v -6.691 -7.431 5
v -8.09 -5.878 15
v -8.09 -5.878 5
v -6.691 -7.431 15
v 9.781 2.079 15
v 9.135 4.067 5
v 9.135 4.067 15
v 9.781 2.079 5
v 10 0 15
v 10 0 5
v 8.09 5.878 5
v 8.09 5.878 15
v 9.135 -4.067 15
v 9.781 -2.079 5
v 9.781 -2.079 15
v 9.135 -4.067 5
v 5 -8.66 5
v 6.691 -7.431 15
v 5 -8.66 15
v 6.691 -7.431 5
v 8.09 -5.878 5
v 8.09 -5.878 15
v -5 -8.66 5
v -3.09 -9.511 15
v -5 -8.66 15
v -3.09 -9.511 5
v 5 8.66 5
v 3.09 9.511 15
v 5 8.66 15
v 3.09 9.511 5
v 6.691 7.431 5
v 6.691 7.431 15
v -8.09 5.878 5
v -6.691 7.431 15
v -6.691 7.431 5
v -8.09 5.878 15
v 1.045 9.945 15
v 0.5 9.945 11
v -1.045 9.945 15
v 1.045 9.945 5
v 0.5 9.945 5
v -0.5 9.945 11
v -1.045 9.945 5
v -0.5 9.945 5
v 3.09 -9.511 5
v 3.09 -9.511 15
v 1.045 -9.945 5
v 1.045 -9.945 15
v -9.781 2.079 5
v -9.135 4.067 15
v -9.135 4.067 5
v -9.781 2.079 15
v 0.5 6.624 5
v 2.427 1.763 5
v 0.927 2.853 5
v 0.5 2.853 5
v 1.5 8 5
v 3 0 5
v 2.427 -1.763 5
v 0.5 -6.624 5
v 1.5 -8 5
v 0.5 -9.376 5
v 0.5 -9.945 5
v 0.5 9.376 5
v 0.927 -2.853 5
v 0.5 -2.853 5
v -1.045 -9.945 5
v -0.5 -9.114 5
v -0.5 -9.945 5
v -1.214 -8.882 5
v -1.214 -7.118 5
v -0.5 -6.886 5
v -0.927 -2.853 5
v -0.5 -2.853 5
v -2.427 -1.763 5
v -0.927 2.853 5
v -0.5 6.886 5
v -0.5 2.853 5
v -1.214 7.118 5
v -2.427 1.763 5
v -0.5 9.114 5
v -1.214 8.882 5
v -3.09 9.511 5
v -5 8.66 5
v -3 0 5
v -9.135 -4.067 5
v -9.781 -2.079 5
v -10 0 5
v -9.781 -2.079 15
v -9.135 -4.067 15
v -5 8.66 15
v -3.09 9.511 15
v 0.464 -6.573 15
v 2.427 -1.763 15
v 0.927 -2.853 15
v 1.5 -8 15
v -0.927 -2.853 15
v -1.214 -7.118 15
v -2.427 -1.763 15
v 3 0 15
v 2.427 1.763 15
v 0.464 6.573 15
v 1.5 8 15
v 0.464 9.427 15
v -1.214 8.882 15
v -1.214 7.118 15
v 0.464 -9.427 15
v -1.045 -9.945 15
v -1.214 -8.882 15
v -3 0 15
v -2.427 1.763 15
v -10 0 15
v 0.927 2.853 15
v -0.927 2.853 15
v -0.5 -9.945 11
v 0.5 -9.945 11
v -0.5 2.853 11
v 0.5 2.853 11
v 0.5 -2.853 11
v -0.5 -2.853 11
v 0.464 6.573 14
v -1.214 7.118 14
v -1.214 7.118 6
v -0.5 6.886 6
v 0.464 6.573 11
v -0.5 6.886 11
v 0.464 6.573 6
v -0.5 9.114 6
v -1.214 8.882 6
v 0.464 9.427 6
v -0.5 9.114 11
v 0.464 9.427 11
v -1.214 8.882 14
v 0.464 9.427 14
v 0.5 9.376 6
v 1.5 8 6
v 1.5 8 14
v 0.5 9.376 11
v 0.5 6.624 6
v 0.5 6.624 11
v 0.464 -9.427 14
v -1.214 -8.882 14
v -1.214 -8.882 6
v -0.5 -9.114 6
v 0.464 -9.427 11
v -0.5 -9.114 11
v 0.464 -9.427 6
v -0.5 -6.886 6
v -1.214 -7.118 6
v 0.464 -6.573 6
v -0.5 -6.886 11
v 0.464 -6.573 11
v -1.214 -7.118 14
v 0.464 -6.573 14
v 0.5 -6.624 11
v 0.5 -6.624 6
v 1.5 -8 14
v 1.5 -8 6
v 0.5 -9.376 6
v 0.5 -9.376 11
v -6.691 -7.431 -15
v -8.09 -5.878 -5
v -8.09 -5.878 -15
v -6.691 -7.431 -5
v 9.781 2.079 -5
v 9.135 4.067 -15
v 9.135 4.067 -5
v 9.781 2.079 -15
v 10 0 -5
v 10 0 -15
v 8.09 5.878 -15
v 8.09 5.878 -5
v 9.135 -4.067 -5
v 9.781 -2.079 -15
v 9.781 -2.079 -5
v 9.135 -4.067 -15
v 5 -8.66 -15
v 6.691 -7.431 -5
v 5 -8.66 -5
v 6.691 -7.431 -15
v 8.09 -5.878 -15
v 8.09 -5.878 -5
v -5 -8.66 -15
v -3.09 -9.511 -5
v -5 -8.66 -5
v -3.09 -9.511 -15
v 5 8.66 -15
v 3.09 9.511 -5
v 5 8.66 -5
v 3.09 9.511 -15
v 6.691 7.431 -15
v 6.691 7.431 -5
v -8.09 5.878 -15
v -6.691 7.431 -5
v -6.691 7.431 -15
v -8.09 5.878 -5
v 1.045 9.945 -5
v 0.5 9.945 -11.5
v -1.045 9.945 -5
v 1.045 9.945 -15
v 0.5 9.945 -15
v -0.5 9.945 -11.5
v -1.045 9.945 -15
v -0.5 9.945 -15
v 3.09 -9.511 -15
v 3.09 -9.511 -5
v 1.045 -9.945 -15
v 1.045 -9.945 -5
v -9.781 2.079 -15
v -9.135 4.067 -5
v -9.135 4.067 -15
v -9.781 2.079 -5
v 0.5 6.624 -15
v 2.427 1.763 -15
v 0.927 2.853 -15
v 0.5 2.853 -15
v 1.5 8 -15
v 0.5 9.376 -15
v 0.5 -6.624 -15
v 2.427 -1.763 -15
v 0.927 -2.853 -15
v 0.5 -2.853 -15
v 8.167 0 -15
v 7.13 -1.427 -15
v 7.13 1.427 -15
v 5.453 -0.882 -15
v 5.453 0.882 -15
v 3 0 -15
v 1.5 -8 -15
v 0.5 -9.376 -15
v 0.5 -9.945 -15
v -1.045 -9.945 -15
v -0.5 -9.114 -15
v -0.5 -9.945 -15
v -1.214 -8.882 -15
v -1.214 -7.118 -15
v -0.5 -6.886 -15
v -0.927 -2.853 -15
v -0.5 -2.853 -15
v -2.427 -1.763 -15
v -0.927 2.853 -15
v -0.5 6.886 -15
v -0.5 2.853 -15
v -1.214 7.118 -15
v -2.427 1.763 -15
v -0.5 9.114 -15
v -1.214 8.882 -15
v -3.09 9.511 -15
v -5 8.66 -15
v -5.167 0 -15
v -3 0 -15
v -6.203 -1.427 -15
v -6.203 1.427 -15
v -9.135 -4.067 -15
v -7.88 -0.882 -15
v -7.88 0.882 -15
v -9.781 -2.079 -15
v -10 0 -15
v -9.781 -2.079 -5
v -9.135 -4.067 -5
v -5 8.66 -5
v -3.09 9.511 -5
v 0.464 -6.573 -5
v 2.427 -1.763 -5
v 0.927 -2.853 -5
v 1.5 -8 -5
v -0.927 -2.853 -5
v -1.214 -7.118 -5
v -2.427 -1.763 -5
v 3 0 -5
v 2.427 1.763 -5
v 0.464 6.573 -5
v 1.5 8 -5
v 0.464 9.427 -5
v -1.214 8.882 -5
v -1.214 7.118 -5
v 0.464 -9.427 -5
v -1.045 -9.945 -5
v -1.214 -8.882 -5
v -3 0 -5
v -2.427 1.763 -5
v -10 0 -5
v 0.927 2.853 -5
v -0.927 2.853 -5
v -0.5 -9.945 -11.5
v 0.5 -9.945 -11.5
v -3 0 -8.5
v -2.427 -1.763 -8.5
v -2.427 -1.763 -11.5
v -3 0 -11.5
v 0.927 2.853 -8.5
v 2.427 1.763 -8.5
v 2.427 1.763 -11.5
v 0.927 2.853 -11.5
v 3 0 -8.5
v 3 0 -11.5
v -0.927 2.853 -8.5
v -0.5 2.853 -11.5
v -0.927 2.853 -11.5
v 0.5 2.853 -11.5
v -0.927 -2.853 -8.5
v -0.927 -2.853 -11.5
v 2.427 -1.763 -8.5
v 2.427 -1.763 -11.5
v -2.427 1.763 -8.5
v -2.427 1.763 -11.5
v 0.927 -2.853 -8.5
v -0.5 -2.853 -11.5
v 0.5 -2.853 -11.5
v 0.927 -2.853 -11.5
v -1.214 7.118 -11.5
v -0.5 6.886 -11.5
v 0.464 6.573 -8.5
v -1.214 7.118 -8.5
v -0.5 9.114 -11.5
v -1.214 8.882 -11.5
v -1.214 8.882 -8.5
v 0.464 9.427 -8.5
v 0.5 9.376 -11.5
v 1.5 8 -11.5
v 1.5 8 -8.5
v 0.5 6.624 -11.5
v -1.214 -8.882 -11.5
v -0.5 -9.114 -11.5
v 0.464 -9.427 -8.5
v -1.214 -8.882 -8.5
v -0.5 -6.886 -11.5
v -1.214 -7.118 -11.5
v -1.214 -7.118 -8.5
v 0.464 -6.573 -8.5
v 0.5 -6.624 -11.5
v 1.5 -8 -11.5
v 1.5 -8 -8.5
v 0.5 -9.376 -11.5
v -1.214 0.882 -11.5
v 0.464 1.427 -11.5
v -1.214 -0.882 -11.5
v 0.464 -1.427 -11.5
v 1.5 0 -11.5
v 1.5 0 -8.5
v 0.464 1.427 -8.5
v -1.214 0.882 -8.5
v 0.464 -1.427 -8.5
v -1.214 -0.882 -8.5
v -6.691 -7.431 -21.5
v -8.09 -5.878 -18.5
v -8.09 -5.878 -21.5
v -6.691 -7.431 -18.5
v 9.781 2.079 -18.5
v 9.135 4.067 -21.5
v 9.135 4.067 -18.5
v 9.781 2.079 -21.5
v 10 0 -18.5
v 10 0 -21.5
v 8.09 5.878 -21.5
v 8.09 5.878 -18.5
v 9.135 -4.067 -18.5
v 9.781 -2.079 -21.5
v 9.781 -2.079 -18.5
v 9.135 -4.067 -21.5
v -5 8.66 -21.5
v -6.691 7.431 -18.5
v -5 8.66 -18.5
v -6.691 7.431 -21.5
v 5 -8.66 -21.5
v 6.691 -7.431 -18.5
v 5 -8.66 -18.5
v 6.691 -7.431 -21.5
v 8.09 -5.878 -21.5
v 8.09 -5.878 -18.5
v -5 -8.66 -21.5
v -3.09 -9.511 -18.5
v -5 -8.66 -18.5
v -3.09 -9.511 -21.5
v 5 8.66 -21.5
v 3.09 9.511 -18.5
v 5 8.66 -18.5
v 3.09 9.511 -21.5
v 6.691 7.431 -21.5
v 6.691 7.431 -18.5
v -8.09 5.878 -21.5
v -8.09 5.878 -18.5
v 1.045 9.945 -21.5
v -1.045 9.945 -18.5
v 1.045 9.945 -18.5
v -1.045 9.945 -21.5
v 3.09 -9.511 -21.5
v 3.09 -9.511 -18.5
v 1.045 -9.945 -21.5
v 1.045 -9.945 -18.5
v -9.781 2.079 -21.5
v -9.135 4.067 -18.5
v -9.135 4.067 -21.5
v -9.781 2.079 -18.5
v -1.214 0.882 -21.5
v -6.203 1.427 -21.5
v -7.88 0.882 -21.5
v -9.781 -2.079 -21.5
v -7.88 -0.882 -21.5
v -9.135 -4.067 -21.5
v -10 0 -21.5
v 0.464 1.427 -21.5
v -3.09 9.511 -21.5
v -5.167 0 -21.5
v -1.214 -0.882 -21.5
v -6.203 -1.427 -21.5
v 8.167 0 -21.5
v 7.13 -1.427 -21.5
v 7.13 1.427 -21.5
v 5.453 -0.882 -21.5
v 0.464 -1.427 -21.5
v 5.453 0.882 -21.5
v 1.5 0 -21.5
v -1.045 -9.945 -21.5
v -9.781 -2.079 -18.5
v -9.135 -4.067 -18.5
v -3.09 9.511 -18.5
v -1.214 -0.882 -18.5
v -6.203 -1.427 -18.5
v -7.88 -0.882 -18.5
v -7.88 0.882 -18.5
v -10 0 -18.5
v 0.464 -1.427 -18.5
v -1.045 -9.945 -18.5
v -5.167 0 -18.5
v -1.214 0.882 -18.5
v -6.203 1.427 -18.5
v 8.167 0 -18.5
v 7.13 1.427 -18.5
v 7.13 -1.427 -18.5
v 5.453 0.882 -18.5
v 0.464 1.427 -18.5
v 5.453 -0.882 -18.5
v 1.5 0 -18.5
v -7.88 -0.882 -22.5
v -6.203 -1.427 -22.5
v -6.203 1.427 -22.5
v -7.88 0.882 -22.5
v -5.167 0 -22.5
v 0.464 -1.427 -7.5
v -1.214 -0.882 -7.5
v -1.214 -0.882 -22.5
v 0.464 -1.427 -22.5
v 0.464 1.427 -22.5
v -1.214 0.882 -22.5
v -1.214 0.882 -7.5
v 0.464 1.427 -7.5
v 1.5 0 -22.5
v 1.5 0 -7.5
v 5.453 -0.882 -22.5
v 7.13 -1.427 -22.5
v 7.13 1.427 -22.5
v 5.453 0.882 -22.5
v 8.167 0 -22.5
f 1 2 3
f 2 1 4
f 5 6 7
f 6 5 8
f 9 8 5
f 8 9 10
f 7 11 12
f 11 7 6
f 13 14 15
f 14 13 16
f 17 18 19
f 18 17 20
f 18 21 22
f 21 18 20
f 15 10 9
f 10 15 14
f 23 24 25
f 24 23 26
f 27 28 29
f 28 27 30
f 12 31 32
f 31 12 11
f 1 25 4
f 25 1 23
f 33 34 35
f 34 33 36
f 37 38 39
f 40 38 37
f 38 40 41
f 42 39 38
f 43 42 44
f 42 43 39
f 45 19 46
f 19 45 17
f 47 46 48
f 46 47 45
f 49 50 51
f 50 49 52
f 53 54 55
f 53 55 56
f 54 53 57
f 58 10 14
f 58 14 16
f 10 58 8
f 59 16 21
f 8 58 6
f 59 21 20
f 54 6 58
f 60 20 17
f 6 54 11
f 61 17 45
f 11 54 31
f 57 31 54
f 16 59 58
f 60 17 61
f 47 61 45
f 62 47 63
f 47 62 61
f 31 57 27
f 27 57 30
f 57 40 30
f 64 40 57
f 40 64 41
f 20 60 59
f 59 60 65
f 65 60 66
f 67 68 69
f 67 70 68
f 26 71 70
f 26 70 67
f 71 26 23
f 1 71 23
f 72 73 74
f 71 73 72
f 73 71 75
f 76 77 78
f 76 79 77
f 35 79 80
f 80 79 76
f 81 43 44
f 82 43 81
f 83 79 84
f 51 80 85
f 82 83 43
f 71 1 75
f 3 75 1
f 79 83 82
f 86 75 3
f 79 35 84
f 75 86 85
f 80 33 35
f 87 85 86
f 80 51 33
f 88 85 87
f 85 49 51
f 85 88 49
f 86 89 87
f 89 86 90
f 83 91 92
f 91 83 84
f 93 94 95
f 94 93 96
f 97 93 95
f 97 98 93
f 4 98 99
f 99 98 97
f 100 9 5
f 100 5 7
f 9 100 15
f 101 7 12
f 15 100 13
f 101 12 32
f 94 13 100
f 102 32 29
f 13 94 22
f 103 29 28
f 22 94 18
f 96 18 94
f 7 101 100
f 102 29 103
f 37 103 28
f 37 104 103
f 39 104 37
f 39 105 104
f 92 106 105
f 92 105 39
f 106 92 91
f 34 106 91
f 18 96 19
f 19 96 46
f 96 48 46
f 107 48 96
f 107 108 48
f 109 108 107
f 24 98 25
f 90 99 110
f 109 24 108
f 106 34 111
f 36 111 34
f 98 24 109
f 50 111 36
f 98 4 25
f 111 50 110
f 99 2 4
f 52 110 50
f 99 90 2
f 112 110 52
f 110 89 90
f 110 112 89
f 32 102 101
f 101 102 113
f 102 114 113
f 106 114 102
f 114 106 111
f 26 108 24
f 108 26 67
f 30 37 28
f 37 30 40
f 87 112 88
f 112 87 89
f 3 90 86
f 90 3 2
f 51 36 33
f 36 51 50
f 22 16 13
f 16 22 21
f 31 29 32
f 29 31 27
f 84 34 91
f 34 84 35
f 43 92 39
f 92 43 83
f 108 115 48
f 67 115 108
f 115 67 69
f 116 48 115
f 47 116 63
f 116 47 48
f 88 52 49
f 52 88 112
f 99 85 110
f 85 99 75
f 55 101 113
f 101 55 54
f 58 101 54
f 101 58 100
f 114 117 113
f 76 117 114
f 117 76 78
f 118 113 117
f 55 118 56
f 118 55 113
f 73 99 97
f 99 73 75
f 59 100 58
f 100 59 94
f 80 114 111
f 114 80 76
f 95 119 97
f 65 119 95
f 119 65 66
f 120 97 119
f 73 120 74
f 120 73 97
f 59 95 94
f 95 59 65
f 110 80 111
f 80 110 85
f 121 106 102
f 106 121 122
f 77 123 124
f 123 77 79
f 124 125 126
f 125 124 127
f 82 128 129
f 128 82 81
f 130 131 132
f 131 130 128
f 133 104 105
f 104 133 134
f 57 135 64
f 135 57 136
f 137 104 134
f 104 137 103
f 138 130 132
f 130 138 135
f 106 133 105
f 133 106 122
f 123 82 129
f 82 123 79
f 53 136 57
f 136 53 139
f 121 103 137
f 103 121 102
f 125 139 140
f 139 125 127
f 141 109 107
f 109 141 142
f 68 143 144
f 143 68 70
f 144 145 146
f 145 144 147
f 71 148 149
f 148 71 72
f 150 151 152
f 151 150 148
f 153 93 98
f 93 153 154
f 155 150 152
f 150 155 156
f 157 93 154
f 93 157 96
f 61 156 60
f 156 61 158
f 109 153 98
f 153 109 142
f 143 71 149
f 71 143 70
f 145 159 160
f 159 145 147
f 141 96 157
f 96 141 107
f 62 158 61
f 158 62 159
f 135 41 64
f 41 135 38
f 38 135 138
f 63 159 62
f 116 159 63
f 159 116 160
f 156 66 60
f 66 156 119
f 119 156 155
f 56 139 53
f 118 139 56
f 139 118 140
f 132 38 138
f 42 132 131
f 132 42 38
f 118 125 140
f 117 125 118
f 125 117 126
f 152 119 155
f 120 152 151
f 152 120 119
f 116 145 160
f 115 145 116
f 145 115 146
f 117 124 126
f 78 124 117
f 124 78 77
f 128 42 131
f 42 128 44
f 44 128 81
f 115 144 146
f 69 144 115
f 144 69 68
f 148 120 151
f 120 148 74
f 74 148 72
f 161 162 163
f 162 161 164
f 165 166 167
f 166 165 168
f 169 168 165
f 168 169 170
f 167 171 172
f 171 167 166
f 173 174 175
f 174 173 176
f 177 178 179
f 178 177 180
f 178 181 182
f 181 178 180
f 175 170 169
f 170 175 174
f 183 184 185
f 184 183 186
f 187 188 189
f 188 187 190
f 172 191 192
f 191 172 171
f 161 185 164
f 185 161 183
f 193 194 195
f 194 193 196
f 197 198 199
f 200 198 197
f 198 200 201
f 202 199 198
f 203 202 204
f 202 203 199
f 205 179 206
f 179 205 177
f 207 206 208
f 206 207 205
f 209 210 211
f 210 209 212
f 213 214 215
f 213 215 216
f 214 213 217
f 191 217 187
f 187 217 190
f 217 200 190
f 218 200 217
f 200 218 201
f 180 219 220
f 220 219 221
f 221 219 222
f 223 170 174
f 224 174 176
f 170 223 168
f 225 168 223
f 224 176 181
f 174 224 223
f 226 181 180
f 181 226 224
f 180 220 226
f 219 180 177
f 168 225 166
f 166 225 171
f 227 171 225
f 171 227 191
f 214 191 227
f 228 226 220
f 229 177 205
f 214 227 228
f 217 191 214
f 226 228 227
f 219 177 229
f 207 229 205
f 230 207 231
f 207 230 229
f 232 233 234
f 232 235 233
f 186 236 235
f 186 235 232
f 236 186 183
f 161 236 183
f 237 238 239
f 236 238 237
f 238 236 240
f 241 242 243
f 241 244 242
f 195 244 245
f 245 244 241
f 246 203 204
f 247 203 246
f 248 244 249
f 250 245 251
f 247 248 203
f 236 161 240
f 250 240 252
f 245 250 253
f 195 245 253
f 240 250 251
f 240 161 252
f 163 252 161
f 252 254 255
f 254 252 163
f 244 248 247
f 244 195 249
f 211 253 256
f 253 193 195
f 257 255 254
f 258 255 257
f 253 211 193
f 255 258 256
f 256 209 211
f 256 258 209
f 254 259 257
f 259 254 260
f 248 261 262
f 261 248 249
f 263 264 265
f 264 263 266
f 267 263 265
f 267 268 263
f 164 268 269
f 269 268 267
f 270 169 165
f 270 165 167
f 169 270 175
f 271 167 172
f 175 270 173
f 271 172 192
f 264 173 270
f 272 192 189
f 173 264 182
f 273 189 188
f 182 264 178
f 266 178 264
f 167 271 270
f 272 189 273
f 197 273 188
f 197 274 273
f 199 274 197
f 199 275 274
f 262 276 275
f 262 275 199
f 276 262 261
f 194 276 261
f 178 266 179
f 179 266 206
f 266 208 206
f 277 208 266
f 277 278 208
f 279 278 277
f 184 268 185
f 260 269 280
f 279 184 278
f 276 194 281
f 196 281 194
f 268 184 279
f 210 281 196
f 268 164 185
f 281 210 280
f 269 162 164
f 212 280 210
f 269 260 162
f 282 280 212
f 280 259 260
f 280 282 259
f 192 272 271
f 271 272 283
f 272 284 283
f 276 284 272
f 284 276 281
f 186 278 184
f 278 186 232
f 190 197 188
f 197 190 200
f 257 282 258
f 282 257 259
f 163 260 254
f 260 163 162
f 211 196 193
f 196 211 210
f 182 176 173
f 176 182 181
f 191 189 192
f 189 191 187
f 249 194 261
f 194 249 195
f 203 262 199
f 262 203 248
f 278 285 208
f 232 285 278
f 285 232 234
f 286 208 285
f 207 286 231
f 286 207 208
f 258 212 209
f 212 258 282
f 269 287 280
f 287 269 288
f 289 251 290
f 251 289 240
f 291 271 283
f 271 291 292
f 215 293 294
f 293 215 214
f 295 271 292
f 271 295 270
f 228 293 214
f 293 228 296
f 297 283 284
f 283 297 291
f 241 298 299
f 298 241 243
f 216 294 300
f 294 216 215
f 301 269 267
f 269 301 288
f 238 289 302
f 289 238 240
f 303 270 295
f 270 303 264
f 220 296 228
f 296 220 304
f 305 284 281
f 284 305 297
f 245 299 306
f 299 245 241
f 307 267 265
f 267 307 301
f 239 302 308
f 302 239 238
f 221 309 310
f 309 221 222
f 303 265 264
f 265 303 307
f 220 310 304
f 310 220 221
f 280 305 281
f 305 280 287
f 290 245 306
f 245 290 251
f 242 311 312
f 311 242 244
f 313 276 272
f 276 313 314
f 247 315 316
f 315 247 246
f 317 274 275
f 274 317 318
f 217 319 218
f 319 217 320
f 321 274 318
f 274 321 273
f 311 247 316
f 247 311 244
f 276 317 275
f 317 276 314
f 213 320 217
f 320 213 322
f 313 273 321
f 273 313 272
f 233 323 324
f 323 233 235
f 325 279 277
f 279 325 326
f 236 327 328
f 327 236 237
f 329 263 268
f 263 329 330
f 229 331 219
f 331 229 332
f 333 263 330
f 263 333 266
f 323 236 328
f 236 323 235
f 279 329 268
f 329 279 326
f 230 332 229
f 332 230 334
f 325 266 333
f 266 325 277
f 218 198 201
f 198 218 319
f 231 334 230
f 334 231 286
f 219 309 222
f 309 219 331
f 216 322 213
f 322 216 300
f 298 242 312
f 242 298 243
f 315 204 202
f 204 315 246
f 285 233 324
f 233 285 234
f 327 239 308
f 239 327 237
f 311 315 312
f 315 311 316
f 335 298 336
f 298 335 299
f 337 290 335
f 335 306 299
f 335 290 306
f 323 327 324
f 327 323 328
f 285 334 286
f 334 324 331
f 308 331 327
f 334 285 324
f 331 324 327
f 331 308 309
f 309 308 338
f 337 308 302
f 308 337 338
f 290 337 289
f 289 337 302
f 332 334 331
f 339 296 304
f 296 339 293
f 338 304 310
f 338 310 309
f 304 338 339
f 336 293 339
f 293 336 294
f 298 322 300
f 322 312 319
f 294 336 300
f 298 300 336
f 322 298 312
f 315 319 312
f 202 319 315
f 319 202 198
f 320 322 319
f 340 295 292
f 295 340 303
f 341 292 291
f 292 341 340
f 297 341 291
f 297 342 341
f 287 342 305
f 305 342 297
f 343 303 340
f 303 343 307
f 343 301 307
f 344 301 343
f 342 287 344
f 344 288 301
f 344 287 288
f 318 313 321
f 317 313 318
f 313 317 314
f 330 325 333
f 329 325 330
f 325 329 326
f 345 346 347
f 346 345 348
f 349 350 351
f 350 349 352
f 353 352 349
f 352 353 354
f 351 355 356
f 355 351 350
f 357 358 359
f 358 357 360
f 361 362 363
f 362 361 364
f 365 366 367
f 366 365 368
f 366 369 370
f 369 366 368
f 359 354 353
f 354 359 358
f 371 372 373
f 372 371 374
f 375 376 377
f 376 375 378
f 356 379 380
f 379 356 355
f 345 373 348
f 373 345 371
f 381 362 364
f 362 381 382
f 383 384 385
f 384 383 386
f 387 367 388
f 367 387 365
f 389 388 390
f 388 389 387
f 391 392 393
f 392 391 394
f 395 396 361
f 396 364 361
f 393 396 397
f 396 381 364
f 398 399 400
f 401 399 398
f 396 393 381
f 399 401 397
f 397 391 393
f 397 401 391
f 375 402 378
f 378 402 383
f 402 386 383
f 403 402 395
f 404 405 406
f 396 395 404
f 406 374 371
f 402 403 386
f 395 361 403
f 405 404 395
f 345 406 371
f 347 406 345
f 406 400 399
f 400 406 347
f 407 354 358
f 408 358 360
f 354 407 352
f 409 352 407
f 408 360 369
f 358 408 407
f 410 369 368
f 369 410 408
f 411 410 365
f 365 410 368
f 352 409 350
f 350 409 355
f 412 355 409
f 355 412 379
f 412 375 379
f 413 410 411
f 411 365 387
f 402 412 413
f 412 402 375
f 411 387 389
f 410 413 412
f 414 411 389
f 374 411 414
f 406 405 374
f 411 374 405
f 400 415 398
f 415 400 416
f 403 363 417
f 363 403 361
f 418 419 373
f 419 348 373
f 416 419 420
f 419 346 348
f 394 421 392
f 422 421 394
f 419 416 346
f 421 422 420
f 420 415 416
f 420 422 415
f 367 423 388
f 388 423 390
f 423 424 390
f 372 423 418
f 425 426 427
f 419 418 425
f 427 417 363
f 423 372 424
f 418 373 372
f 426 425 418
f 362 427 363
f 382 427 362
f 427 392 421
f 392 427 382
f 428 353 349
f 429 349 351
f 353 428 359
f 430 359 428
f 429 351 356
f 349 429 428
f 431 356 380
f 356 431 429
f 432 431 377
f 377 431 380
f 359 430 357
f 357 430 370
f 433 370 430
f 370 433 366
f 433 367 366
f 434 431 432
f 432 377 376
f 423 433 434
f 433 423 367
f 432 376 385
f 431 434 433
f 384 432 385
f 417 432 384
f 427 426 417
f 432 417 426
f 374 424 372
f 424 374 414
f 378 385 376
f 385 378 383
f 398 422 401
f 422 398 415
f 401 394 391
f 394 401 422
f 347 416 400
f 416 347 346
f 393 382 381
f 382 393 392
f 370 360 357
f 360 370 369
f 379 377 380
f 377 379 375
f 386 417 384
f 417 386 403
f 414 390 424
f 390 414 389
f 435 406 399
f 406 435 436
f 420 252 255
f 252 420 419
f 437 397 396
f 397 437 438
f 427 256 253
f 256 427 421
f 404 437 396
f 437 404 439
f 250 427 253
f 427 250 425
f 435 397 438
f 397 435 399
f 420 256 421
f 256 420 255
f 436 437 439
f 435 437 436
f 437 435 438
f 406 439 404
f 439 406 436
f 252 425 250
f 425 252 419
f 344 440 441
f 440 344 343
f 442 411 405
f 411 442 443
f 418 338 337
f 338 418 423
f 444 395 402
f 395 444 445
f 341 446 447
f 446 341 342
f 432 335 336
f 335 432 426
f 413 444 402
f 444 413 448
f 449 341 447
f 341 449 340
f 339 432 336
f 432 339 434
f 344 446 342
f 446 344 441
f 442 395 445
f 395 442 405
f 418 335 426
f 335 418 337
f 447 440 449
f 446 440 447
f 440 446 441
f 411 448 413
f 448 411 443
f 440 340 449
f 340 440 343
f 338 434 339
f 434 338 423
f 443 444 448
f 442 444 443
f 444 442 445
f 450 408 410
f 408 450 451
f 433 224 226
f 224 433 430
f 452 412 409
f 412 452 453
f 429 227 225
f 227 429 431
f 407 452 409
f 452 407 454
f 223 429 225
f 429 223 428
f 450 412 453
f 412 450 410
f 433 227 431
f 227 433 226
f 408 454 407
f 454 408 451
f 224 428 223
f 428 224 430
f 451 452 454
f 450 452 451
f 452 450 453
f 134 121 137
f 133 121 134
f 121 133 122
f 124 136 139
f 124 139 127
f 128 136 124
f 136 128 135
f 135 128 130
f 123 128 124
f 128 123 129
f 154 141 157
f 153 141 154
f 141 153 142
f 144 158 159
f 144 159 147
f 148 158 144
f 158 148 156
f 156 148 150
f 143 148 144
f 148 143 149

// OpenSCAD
// Parameters
clamp_diameter = 20;
clamp_height = 10;
shaft_hole_diameter = 6;
screw_hole_diameter = 3;
slit_width = 1;
flexible_element_thickness = 3;
pin_diameter = 3;
pin_length = 15;
screw_length = 8;

// Left Clamp
module left_clamp() {
    difference() {
        cylinder(d=clamp_diameter, h=clamp_height, center=true);
        cylinder(d=shaft_hole_diameter, h=clamp_height+2, center=true);
        translate([0, clamp_diameter/2 - 2, 0])
            cylinder(d=screw_hole_diameter, h=clamp_height+2, center=true);
        translate([0, -clamp_diameter/2 + 2, 0])
            cylinder(d=screw_hole_diameter, h=clamp_height+2, center=true);
        translate([0, 0, -clamp_height/2])
            cube([slit_width, clamp_diameter, clamp_height+2], center=true);
    }
}

// Right Clamp
module right_clamp() {
    left_clamp();
}

// Flexible Element
module flexible_element() {
    difference() {
        union() {
            translate([0, 0, -clamp_height])
                cylinder(d=clamp_diameter, h=flexible_element_thickness, center=true);
            translate([0, 0, -2*clamp_height])
                cylinder(d=clamp_diameter, h=flexible_element_thickness, center=true);
        }
        for (i = [-1, 0, 1]) {
            translate([i * clamp_diameter/3, 0, -1.5*clamp_height])
                rotate([0, 90, 0])
                cylinder(d=pin_diameter, h=clamp_diameter+2, center=true);
        }
    }
}

// Pin
module pin() {
    cylinder(d=pin_diameter, h=pin_length, center=true);
}

// Screw
module screw() {
    cylinder(d=screw_hole_diameter, h=screw_length, center=true);
}

// Assembly
module flexible_coupling() {
    translate([0, 0, clamp_height])
        left_clamp();
    translate([0, 0, -clamp_height])
        right_clamp();
    flexible_element();
    for (i = [-1, 0, 1]) {
        translate([i * clamp_diameter/3, 0, -1.5*clamp_height])
            pin();
    }
    translate([0, clamp_diameter/2 - 2, clamp_height])
        screw();
    translate([0, -clamp_diameter/2 + 2, clamp_height])
        screw();
}

// Render the model
flexible_coupling();
